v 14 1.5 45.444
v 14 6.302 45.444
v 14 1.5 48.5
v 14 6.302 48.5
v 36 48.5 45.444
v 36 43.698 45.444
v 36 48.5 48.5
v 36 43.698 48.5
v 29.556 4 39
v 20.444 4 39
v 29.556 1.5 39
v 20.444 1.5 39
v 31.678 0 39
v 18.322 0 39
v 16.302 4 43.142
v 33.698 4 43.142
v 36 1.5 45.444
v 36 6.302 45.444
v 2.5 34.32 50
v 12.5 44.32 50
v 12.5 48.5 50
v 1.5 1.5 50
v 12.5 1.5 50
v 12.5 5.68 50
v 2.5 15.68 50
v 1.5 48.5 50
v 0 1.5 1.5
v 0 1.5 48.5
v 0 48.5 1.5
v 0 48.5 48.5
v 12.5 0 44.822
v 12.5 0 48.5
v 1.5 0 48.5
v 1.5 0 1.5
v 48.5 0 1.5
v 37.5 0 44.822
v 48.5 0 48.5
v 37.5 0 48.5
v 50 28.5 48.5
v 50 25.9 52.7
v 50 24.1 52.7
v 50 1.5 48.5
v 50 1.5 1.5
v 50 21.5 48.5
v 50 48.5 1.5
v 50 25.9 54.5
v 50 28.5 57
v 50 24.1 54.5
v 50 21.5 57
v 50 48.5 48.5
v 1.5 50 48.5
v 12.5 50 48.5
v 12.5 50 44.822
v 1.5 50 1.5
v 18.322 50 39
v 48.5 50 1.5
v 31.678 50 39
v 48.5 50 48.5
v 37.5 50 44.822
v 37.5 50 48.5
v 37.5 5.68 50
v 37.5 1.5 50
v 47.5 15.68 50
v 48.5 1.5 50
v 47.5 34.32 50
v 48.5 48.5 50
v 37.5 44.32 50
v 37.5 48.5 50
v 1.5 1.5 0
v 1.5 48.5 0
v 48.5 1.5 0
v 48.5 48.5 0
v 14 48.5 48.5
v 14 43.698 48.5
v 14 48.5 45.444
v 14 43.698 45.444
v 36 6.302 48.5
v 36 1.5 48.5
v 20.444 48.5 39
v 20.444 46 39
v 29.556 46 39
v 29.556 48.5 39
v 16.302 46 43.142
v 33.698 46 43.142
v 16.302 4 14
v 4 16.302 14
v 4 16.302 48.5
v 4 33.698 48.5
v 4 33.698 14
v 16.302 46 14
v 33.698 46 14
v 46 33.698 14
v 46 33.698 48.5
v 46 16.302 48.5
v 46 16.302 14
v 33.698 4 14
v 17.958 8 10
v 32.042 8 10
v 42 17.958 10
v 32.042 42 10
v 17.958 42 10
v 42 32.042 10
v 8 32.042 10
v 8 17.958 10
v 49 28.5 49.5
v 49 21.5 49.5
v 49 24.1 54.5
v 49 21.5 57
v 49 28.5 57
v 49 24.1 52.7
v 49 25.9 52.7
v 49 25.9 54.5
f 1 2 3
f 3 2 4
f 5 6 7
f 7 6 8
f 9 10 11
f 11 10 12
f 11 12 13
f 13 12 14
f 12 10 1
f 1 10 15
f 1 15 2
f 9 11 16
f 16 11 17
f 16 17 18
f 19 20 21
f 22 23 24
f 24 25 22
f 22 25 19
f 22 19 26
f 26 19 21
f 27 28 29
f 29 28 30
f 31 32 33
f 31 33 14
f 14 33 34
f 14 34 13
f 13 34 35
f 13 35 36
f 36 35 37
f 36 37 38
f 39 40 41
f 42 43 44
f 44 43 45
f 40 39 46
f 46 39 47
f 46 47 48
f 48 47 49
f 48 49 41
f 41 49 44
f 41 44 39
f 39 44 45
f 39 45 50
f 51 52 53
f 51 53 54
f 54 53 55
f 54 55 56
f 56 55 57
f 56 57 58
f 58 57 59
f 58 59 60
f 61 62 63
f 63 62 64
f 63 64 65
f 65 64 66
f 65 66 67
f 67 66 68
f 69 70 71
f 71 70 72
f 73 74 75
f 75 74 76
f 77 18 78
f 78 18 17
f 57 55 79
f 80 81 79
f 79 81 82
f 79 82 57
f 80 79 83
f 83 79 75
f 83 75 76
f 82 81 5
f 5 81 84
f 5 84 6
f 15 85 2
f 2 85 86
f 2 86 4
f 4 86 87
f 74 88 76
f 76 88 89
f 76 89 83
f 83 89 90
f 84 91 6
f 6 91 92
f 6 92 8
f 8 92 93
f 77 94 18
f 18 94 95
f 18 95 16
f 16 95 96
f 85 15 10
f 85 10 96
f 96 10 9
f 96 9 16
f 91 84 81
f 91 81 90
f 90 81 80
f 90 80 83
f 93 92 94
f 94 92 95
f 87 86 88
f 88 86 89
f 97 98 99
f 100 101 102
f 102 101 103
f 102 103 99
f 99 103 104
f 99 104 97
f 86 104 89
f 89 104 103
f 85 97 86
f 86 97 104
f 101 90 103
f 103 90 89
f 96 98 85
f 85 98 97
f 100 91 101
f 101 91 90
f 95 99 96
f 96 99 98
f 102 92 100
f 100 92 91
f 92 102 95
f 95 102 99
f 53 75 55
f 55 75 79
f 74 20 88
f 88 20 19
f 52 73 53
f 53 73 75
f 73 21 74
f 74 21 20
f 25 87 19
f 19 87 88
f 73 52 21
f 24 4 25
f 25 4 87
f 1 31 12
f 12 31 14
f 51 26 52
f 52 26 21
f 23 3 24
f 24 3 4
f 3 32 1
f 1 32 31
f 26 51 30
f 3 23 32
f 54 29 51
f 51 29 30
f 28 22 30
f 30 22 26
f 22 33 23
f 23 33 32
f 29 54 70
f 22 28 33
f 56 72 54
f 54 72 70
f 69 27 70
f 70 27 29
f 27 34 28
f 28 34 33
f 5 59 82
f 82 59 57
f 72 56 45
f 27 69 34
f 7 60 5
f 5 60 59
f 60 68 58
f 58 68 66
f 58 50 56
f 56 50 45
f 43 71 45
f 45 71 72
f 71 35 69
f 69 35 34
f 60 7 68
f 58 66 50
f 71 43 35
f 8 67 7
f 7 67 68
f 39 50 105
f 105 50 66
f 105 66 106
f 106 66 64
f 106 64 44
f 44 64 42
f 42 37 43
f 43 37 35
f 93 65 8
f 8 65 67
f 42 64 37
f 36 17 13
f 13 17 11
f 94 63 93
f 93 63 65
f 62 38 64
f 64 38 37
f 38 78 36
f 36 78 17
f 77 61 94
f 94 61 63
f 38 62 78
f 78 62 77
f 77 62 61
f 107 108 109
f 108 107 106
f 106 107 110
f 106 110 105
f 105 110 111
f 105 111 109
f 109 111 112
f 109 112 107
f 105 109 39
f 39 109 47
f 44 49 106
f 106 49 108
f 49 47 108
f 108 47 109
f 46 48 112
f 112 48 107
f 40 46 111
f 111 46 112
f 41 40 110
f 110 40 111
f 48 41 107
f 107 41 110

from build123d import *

# Parameters (mm, degrees)
SKETCH1_W                = 50
SKETCH1_H                = 50
BOSS_EXTRUDE1_DEPTH      = 50
CUT_EXTRUDE2_DEPTH       = 87.602540378
CUT_EXTRUDE3_DEPTH       = 40
CHAMFER1_SIZE            = 4
CHAMFER3_SIZE            = 1.5
BOSS_EXTRUDE2_DEPTH      = 7
BOSS_EXTRUDE2_DEPTH_BACK = 10
SKETCH5_W                = 1
SKETCH5_H                = 7
SKETCH6_W                = 1.8
SKETCH6_H                = 1.8
CUT_EXTRUDE4_DEPTH       = 7


with BuildPart() as part:
    # Sketch1 → Boss-Extrude1 (new body)
    with BuildSketch(Plane.XY):
        with Locations((25, 25)):
            Rectangle(SKETCH1_W, SKETCH1_H)
    extrude(amount=BOSS_EXTRUDE1_DEPTH)

    # Sketch3 → Cut-Extrude2 (cut, through all)
    with BuildSketch(Plane.XZ):
        Polygon((29.556349186, 39), (36, 45.443650814), (36, 54.556349186), (29.556349186, 61), (20.443650814, 61), (14, 54.556349186), (14, 45.443650814), (20.443650814, 39), align=None)
    extrude(amount=-CUT_EXTRUDE2_DEPTH, mode=Mode.SUBTRACT)

    # Sketch4 → Cut-Extrude3 (cut)
    with BuildSketch(Plane.XY.offset(50)):
        Polygon((33.69848481, 46), (16.30151519, 46), (4, 33.69848481), (4, 16.30151519), (16.30151519, 4), (33.69848481, 4), (46, 16.30151519), (46, 33.69848481), align=None)
    extrude(amount=-CUT_EXTRUDE3_DEPTH, mode=Mode.SUBTRACT)

    # Chamfer1
    chamfer1_edges = [part.edges().sort_by_distance(p)[0] for p in [
        (10.150757595, 10.150757595, 10),
        (10.150757595, 39.849242405, 10),
        (39.849242405, 39.849242405, 10),
        (39.849242405, 10.150757595, 10),
        (25, 4, 10),
        (25, 46, 10),
        (46, 25, 10),
        (4, 25, 10),
    ]]
    chamfer(chamfer1_edges, length=CHAMFER1_SIZE)

    # Chamfer3
    chamfer3_edges = [part.edges().sort_by_distance(p)[0] for p in [
        (50, 25, 50),
        (43, 50, 50),
        (43, 0, 50),
        (7, 50, 50),
        (36, 46.849242405, 50),
        (14, 3.150757595, 50),
        (14, 50, 47.721825407),
        (36, 50, 47.721825407),
        (36, 0, 47.721825407),
        (14, 0, 47.721825407),
        (17.221825407, 0, 42.221825407),
        (32.778174593, 0, 42.221825407),
        (17.221825407, 50, 42.221825407),
        (32.778174593, 50, 42.221825407),
        (0, 25, 50),
        (25, 50, 0),
        (50, 25, 0),
        (36, 3.150757595, 50),
        (14, 46.849242405, 50),
        (25, 0, 0),
        (9, 11.30151519, 50),
        (9, 38.69848481, 50),
        (4, 25, 50),
        (41, 38.69848481, 50),
        (0, 25, 0),
        (41, 11.30151519, 50),
        (46, 25, 50),
        (7, 0, 50),
        (0, 50, 25),
        (50, 50, 25),
        (50, 0, 25),
        (0, 0, 25),
    ]]
    chamfer(chamfer3_edges, length=CHAMFER3_SIZE)

    # Sketch5 → Boss-Extrude2 (add, two sides: drawn at the far end of the back side and taken through both)
    with BuildSketch(Plane.XY.offset(50).offset(-BOSS_EXTRUDE2_DEPTH_BACK)):
        with Locations((49.5, 25)):
            Rectangle(SKETCH5_W, SKETCH5_H)
    extrude(amount=BOSS_EXTRUDE2_DEPTH + BOSS_EXTRUDE2_DEPTH_BACK)

    # Sketch6 → Cut-Extrude4 (cut)
    with BuildSketch(Plane(origin=(50, 0, 0), x_dir=(0, 0, -1), z_dir=(1, 0, 0))):
        with Locations((-53.6, 25)):
            Rectangle(SKETCH6_W, SKETCH6_H)
    extrude(amount=-CUT_EXTRUDE4_DEPTH, mode=Mode.SUBTRACT)


solid = part.part
